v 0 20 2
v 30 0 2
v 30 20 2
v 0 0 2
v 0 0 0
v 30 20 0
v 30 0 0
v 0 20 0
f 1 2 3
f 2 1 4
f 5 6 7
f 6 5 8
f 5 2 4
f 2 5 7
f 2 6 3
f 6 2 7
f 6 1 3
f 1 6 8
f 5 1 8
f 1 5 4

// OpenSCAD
// SPDX-FileCopyrightText: 2026 Alon A. Rabinowitz
// SPDX-License-Identifier: MPL-2.0
// tests/fixtures/box.scad - a 30 x 20 x 2 mm box, sliced to box.gcode by make.sh: the G-code the resume and
// retarget scripts' tests read. Ten layers of 0.2 mm, its front wall at Y 20 where probe_touch.py looks.
cube([30, 20, 2]);
